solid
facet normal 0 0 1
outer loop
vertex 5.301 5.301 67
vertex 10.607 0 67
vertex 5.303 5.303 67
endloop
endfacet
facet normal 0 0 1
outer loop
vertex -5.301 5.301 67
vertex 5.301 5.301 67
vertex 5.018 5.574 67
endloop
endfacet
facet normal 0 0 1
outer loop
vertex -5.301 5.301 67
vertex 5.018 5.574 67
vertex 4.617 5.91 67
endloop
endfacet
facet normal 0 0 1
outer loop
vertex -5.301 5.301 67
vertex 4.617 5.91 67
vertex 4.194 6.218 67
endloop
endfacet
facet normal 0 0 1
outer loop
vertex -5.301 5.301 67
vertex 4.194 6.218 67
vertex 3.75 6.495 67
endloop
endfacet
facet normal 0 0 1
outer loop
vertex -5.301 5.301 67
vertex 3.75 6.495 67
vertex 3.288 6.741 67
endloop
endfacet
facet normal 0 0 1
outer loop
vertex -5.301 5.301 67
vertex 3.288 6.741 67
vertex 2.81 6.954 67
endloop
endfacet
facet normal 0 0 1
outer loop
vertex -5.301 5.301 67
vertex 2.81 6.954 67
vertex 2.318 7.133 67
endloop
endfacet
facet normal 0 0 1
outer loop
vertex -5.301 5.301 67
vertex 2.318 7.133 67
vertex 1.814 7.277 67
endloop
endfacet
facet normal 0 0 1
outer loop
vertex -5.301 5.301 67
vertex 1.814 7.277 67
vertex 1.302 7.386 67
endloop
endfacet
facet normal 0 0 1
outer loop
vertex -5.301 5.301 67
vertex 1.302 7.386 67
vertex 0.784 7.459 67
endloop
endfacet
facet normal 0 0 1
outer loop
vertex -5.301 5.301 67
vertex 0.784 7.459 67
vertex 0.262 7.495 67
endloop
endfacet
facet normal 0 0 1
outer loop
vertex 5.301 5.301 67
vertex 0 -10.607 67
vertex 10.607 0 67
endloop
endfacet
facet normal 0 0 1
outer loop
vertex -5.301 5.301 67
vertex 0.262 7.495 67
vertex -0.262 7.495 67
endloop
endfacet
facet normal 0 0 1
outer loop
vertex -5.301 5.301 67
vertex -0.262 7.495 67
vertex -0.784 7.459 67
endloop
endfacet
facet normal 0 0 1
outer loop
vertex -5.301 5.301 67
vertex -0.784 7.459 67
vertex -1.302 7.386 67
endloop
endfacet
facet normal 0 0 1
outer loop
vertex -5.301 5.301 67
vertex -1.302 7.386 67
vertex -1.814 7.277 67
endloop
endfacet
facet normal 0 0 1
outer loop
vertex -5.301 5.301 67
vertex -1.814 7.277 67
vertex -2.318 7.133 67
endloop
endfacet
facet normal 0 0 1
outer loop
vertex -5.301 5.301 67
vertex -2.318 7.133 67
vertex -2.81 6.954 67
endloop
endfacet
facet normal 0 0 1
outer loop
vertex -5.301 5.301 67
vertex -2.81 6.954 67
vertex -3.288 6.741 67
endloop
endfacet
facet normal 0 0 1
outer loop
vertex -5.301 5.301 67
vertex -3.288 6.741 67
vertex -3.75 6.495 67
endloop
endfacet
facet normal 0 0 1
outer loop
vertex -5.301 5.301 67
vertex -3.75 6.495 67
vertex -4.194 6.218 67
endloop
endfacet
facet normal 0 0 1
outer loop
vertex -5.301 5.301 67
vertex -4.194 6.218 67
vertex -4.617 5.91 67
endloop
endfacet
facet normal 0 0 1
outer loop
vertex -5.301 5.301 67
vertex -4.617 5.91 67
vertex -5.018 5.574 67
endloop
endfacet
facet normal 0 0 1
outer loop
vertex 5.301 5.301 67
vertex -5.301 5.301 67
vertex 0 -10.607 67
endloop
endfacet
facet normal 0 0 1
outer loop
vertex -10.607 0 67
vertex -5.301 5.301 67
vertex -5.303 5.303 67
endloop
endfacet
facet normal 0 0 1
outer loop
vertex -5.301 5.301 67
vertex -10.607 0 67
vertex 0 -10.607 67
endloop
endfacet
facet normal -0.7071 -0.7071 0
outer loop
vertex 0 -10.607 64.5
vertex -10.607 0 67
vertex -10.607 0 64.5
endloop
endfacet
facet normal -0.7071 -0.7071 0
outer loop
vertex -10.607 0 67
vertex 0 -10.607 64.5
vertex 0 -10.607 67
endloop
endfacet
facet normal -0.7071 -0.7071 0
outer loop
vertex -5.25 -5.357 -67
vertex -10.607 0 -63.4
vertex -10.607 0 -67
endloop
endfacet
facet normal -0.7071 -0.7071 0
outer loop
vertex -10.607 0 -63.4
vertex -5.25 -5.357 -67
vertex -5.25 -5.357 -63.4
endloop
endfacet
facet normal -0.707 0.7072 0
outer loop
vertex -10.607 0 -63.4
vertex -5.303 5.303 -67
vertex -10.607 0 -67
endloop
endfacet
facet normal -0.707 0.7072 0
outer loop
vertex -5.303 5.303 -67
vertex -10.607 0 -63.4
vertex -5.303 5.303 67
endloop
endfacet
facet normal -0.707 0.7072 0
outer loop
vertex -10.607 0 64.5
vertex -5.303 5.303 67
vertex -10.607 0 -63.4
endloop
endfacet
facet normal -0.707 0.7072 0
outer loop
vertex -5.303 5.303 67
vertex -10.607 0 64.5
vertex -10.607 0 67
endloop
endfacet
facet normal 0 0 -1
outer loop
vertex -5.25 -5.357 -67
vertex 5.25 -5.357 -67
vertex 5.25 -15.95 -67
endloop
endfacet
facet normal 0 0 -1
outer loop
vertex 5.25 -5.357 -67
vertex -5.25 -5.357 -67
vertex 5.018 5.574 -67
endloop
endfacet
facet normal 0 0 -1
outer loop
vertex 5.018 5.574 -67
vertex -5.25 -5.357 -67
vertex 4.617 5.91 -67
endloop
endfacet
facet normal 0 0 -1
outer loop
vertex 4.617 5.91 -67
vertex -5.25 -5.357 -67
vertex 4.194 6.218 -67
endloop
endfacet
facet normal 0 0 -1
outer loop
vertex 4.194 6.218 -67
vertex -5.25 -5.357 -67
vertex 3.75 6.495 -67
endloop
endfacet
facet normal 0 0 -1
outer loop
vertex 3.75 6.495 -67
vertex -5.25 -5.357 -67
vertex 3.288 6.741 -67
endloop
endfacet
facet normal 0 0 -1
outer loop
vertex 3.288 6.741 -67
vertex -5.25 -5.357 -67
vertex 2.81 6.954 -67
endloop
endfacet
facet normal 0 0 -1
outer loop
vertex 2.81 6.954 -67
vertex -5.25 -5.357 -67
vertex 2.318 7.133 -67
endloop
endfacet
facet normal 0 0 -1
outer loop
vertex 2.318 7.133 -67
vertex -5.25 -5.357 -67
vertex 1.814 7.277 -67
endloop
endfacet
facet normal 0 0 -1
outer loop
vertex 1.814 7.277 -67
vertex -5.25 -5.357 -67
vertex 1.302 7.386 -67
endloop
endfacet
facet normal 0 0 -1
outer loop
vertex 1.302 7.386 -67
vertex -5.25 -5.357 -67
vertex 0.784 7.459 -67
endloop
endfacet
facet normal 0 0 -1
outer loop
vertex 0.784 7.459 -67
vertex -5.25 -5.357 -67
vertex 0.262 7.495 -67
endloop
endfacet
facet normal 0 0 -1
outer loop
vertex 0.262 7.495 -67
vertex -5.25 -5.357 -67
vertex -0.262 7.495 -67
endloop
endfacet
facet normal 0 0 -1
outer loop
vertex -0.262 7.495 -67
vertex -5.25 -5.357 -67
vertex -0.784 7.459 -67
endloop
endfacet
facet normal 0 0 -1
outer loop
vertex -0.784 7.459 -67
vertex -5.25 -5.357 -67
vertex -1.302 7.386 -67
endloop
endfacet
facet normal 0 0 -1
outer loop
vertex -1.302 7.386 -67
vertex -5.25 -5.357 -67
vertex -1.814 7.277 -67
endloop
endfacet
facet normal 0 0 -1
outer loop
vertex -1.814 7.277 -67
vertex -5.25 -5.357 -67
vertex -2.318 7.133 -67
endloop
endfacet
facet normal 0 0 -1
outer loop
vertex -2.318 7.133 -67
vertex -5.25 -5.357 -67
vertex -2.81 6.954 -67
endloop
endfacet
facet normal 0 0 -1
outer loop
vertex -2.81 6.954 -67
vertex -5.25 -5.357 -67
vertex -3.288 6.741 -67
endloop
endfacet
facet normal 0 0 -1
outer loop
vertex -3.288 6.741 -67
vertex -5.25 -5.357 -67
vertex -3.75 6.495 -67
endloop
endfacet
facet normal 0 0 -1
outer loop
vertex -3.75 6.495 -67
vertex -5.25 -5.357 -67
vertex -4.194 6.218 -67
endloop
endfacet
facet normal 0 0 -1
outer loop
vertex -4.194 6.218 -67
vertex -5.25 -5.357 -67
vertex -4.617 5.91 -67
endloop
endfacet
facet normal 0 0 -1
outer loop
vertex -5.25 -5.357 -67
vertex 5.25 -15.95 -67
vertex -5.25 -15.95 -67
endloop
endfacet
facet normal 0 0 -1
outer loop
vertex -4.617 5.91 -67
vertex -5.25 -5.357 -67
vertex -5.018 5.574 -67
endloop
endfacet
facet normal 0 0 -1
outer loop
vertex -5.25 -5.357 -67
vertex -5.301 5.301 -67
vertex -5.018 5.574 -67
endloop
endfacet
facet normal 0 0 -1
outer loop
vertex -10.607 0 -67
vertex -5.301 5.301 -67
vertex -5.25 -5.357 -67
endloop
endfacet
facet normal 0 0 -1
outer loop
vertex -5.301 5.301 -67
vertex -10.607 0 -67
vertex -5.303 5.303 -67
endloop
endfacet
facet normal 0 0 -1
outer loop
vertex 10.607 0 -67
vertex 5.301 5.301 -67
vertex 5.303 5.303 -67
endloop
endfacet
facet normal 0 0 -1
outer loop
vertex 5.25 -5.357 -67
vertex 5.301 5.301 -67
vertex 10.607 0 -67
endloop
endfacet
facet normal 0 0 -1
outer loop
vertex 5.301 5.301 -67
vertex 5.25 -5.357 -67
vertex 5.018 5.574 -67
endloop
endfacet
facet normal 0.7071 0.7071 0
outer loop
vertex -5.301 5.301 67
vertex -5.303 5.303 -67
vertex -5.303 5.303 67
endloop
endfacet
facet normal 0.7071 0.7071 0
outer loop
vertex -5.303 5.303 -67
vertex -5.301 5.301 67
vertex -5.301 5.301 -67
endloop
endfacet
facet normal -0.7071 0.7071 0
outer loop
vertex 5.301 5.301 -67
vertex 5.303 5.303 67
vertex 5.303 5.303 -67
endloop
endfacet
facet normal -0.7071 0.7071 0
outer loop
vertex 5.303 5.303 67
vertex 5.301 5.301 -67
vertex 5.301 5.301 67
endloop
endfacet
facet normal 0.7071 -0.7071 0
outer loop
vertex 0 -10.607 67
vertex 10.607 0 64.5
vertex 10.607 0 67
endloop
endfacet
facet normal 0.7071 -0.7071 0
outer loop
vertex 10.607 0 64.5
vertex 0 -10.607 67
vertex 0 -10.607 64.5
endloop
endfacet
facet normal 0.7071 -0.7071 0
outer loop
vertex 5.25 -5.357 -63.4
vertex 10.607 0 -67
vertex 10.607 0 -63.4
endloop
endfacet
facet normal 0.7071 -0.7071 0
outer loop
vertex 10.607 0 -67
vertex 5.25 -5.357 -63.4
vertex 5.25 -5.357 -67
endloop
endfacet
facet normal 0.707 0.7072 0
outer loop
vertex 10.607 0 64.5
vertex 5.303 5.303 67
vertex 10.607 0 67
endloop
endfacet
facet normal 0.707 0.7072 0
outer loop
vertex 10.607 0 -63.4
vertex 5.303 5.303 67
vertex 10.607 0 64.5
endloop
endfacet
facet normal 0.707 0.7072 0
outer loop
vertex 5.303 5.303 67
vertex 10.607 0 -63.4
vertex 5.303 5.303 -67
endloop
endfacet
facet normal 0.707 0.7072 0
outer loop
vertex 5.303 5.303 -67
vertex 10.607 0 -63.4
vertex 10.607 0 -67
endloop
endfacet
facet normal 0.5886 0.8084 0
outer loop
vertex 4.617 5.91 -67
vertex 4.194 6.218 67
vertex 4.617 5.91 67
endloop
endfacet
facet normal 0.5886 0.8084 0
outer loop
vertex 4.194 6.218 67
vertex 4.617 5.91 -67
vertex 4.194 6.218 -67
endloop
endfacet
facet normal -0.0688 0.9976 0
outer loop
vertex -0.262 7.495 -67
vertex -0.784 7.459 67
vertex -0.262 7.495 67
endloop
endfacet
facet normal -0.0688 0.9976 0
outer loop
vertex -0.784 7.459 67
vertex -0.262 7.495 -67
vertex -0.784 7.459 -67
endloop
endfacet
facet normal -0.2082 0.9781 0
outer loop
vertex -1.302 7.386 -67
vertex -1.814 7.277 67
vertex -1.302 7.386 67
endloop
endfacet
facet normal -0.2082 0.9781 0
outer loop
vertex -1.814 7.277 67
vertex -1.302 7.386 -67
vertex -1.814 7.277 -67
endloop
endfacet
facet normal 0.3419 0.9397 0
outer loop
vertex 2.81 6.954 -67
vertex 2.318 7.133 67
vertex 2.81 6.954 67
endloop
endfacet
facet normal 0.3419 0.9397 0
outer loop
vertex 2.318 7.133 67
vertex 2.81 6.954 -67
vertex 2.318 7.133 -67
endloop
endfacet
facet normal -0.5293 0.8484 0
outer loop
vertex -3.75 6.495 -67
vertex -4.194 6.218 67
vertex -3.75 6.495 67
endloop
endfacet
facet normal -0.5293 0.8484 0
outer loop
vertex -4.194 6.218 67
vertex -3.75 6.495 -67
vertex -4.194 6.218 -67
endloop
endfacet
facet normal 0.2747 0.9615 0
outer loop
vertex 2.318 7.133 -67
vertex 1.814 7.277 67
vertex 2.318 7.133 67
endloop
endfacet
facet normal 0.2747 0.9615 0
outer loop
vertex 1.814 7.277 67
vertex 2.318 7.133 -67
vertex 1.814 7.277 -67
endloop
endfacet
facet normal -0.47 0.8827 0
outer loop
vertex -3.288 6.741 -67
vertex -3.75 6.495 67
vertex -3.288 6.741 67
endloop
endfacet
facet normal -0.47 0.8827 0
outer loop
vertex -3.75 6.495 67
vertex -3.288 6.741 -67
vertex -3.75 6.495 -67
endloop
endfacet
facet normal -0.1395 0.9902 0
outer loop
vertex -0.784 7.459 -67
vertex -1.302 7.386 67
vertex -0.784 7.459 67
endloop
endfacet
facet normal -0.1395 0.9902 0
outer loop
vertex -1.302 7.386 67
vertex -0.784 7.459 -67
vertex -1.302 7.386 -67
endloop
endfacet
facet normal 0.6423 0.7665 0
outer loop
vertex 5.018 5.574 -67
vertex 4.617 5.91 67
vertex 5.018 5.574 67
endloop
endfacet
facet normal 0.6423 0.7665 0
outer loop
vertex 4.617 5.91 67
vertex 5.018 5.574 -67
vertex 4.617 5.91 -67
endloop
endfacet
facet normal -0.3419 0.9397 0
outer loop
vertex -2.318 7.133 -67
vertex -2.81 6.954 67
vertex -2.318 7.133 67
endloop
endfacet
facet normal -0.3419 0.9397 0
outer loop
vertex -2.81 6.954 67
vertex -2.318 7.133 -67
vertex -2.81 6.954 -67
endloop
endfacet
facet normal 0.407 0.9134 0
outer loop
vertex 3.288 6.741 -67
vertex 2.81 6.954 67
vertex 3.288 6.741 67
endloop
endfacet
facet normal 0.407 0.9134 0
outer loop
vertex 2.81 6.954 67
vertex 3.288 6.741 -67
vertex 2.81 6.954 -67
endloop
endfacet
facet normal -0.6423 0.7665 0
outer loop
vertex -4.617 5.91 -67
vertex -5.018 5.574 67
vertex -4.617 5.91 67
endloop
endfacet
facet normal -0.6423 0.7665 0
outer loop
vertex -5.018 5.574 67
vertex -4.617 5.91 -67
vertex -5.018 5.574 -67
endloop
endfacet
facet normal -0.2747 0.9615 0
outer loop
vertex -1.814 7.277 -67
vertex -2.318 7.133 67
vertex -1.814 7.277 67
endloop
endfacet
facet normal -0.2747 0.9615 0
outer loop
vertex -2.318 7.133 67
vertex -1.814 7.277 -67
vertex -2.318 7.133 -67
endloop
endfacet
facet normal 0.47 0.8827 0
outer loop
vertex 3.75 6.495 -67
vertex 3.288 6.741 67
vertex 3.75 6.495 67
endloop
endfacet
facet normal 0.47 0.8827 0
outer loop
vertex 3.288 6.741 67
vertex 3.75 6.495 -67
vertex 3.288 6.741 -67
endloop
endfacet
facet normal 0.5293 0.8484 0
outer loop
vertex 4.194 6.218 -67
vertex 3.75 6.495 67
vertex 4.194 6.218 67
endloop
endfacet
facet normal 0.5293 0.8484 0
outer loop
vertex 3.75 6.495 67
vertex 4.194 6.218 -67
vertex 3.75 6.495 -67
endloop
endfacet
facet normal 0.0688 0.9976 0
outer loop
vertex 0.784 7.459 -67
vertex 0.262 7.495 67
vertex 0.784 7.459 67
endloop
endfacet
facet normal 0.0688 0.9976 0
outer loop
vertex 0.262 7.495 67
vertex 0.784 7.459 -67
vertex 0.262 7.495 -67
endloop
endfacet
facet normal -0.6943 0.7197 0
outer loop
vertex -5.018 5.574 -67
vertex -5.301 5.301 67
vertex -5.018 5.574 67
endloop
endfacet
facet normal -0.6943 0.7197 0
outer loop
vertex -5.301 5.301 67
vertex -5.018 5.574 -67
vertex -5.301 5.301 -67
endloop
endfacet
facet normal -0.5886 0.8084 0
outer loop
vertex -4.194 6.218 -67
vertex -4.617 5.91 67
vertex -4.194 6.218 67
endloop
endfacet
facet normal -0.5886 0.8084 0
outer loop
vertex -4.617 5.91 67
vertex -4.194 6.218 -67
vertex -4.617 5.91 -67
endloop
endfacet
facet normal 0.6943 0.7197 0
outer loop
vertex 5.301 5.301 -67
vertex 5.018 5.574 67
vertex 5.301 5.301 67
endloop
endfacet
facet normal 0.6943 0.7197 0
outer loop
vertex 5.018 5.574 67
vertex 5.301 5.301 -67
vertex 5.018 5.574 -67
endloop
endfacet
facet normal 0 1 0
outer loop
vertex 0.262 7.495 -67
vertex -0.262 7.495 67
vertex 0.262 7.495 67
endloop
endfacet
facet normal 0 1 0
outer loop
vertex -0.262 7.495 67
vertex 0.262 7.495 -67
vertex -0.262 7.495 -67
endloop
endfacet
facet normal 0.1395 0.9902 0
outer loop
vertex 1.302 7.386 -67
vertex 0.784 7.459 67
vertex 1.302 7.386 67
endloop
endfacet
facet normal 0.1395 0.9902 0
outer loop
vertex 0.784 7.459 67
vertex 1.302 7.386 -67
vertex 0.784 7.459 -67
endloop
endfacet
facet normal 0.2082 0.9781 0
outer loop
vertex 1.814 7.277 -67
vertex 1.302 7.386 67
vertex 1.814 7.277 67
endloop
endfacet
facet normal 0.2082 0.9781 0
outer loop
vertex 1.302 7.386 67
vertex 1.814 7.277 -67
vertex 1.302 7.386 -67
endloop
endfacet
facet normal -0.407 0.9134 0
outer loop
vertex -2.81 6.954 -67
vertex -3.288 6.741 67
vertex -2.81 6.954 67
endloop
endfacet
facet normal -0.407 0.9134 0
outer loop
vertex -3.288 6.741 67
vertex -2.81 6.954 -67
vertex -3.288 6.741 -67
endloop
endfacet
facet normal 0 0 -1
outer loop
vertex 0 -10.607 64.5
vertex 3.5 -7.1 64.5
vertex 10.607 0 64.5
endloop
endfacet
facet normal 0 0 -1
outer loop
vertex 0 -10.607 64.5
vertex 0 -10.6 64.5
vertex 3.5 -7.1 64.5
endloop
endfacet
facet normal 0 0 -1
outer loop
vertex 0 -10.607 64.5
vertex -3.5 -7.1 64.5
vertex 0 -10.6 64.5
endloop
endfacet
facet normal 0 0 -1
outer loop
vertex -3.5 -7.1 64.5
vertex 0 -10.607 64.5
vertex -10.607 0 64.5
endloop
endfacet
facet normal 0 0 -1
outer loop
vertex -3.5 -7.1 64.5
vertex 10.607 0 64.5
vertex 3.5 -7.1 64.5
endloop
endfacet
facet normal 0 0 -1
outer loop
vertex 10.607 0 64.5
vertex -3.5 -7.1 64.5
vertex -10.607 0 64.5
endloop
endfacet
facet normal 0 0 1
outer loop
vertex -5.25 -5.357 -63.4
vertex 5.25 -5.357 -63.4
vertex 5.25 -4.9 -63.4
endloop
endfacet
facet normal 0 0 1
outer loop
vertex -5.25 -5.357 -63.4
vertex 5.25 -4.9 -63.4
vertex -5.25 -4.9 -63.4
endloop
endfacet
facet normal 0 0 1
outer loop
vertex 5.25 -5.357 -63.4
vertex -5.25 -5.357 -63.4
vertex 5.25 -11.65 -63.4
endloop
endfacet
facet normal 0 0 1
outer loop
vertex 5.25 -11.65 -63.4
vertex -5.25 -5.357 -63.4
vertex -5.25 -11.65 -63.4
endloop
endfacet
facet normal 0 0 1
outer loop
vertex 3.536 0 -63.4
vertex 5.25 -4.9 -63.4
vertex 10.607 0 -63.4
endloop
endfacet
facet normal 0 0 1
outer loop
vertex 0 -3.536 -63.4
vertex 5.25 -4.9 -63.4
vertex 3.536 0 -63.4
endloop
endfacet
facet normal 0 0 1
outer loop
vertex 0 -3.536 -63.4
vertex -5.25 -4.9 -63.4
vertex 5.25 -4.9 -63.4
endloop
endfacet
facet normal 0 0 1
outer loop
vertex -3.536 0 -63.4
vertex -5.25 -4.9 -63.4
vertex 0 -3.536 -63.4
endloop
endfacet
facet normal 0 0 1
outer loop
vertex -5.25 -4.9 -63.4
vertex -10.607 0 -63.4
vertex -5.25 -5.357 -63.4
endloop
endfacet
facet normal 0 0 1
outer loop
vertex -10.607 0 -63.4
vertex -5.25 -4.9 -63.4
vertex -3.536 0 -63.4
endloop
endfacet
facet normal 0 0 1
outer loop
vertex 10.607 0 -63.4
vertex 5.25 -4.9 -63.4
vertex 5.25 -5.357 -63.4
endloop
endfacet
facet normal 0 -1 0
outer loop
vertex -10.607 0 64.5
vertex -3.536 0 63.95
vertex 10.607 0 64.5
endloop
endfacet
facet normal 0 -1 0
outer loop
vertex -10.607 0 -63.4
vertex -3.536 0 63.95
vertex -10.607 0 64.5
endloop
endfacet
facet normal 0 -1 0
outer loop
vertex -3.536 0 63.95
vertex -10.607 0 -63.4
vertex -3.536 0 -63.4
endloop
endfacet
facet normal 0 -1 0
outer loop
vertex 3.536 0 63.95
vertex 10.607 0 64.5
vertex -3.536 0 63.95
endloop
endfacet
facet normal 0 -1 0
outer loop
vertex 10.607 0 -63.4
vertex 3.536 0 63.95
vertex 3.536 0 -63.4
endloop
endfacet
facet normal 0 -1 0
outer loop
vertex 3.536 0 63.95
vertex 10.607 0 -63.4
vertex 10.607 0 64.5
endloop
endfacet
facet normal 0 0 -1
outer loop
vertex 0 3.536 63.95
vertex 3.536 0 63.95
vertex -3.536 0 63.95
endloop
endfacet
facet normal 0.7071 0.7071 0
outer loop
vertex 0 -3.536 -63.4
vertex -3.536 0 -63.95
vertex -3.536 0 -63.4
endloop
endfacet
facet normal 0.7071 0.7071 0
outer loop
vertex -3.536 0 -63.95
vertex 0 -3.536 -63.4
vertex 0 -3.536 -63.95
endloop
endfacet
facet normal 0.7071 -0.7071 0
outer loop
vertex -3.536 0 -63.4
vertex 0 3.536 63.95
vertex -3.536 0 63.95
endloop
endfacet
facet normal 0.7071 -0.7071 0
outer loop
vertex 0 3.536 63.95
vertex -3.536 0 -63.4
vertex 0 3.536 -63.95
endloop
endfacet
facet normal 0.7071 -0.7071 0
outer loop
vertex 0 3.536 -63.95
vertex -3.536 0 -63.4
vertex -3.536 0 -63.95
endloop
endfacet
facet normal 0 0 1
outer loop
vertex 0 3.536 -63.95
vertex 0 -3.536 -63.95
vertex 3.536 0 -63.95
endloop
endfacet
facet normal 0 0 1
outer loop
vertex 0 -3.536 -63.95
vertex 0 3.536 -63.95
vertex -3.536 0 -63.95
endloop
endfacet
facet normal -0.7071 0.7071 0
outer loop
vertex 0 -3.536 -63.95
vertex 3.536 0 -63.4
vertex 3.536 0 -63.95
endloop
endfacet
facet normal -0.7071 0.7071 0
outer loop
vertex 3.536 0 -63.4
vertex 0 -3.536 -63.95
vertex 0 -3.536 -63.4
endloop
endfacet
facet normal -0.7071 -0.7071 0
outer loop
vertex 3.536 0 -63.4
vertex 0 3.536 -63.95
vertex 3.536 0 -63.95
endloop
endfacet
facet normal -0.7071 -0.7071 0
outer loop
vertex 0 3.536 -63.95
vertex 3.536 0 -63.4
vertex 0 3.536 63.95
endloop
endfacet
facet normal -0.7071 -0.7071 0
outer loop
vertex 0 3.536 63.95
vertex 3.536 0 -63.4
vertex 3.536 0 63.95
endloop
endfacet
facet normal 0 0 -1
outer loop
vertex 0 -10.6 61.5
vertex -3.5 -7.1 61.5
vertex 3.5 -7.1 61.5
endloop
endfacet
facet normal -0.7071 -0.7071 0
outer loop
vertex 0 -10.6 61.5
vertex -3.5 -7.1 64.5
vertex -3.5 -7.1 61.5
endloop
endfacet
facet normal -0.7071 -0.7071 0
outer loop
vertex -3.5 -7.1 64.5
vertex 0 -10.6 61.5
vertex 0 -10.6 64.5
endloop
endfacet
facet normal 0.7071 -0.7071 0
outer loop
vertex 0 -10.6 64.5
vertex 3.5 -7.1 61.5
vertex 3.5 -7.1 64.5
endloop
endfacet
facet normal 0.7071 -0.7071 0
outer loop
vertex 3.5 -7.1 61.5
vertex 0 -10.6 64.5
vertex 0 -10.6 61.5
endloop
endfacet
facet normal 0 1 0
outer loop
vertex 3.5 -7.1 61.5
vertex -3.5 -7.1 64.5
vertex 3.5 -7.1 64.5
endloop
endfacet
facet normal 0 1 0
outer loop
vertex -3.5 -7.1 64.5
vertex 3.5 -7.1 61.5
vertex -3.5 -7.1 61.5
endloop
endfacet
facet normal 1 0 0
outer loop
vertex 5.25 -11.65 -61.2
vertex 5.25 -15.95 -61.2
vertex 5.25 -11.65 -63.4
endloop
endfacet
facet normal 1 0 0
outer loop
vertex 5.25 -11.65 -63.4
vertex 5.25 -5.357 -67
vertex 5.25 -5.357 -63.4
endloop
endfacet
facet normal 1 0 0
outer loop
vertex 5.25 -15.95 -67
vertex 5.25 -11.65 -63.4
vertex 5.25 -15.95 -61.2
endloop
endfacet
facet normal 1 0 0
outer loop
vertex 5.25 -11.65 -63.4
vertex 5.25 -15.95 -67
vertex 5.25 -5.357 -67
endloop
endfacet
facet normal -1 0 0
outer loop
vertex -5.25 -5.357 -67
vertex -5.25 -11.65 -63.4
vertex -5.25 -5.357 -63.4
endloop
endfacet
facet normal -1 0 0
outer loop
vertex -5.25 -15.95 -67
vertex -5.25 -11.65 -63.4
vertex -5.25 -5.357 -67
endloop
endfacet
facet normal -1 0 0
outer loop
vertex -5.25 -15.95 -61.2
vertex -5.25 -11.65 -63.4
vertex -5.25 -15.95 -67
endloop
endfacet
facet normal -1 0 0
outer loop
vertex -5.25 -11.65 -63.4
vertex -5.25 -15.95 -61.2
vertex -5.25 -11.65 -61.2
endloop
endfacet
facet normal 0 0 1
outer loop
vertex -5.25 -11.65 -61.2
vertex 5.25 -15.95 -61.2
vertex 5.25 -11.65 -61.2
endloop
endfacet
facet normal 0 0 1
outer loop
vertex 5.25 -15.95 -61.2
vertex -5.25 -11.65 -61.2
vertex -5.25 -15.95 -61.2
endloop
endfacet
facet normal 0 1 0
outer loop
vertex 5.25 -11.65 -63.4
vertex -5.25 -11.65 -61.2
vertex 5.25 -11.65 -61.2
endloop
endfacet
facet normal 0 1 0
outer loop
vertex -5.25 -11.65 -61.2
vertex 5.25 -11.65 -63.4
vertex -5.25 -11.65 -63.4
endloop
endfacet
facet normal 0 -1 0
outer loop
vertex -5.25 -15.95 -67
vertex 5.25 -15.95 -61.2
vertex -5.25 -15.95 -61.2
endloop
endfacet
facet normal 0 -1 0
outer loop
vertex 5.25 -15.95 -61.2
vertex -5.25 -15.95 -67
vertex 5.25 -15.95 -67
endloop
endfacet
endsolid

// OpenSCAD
$fn = 90;

outterLength = 134;
innerLength = 127.9;
radius = 15/2;

part();

/*difference(){
	part();
	/*#translate([0, -7.5, outterLength/2-radius]){
		rotate([0, 0, 45]){
			difference(){
				cube(size=2*radius);
				sphere(r=2*radius);
			}
		}
	}*/
	
	/*#translate([0, -7.5, outterLength/2-5]){
		rotate([0, 0, 45]){
			difference(){
				cube(size=2*radius);
				torus(innerDiameter=0, outterDiameter=4*radius);
			}
		}
	}
}*/



module part(){
	
	difference(){
		union(){
			cylinder(d=2*radius, h=outterLength, center=true);
			
			shiftAbs = sqrt(2)*radius/2;
			for(shift = [-shiftAbs, shiftAbs]){
				translate([shift, 0, 0])
					rotate([0, 0, 45])
						cube([radius, radius, outterLength], center=true);
			}
			
			translate([0, -sqrt(2)*radius/2, 0])
				rotate([0, 0, 45])
					cube([radius, radius, outterLength], center=true);
		}

		translate([0, -radius, 0.55])
			#cube([25, 2*radius, innerLength], center=true);
		
		
		rotate([0, 0, 45])
			#cube([2*radius-10, 2*radius-10, innerLength], center=true);
	}
	
	translate([0, -7.1, outterLength/2-5.5])
		linear_extrude(5.5){
			halfDiagnoal = 3.5;
			polygon([[-halfDiagnoal,0], [halfDiagnoal,0], [0, -halfDiagnoal]]);
		}

	translate([0, -9.9, -outterLength/2+3.6/2])
		cube([10.5, 10, 3.6], center=true);
	translate([0, -13.8, -outterLength/2+5.8/2])
		cube([10.5, 4.3, 5.8], center=true);
}

module torus(innerDiameter=5, outterDiameter=10){
	rotate_extrude(angle=360, convexity=10){
		translate([innerDiameter/4+outterDiameter/4, 0, 0])
			circle(d=outterDiameter/2-innerDiameter/2);
	}
}
